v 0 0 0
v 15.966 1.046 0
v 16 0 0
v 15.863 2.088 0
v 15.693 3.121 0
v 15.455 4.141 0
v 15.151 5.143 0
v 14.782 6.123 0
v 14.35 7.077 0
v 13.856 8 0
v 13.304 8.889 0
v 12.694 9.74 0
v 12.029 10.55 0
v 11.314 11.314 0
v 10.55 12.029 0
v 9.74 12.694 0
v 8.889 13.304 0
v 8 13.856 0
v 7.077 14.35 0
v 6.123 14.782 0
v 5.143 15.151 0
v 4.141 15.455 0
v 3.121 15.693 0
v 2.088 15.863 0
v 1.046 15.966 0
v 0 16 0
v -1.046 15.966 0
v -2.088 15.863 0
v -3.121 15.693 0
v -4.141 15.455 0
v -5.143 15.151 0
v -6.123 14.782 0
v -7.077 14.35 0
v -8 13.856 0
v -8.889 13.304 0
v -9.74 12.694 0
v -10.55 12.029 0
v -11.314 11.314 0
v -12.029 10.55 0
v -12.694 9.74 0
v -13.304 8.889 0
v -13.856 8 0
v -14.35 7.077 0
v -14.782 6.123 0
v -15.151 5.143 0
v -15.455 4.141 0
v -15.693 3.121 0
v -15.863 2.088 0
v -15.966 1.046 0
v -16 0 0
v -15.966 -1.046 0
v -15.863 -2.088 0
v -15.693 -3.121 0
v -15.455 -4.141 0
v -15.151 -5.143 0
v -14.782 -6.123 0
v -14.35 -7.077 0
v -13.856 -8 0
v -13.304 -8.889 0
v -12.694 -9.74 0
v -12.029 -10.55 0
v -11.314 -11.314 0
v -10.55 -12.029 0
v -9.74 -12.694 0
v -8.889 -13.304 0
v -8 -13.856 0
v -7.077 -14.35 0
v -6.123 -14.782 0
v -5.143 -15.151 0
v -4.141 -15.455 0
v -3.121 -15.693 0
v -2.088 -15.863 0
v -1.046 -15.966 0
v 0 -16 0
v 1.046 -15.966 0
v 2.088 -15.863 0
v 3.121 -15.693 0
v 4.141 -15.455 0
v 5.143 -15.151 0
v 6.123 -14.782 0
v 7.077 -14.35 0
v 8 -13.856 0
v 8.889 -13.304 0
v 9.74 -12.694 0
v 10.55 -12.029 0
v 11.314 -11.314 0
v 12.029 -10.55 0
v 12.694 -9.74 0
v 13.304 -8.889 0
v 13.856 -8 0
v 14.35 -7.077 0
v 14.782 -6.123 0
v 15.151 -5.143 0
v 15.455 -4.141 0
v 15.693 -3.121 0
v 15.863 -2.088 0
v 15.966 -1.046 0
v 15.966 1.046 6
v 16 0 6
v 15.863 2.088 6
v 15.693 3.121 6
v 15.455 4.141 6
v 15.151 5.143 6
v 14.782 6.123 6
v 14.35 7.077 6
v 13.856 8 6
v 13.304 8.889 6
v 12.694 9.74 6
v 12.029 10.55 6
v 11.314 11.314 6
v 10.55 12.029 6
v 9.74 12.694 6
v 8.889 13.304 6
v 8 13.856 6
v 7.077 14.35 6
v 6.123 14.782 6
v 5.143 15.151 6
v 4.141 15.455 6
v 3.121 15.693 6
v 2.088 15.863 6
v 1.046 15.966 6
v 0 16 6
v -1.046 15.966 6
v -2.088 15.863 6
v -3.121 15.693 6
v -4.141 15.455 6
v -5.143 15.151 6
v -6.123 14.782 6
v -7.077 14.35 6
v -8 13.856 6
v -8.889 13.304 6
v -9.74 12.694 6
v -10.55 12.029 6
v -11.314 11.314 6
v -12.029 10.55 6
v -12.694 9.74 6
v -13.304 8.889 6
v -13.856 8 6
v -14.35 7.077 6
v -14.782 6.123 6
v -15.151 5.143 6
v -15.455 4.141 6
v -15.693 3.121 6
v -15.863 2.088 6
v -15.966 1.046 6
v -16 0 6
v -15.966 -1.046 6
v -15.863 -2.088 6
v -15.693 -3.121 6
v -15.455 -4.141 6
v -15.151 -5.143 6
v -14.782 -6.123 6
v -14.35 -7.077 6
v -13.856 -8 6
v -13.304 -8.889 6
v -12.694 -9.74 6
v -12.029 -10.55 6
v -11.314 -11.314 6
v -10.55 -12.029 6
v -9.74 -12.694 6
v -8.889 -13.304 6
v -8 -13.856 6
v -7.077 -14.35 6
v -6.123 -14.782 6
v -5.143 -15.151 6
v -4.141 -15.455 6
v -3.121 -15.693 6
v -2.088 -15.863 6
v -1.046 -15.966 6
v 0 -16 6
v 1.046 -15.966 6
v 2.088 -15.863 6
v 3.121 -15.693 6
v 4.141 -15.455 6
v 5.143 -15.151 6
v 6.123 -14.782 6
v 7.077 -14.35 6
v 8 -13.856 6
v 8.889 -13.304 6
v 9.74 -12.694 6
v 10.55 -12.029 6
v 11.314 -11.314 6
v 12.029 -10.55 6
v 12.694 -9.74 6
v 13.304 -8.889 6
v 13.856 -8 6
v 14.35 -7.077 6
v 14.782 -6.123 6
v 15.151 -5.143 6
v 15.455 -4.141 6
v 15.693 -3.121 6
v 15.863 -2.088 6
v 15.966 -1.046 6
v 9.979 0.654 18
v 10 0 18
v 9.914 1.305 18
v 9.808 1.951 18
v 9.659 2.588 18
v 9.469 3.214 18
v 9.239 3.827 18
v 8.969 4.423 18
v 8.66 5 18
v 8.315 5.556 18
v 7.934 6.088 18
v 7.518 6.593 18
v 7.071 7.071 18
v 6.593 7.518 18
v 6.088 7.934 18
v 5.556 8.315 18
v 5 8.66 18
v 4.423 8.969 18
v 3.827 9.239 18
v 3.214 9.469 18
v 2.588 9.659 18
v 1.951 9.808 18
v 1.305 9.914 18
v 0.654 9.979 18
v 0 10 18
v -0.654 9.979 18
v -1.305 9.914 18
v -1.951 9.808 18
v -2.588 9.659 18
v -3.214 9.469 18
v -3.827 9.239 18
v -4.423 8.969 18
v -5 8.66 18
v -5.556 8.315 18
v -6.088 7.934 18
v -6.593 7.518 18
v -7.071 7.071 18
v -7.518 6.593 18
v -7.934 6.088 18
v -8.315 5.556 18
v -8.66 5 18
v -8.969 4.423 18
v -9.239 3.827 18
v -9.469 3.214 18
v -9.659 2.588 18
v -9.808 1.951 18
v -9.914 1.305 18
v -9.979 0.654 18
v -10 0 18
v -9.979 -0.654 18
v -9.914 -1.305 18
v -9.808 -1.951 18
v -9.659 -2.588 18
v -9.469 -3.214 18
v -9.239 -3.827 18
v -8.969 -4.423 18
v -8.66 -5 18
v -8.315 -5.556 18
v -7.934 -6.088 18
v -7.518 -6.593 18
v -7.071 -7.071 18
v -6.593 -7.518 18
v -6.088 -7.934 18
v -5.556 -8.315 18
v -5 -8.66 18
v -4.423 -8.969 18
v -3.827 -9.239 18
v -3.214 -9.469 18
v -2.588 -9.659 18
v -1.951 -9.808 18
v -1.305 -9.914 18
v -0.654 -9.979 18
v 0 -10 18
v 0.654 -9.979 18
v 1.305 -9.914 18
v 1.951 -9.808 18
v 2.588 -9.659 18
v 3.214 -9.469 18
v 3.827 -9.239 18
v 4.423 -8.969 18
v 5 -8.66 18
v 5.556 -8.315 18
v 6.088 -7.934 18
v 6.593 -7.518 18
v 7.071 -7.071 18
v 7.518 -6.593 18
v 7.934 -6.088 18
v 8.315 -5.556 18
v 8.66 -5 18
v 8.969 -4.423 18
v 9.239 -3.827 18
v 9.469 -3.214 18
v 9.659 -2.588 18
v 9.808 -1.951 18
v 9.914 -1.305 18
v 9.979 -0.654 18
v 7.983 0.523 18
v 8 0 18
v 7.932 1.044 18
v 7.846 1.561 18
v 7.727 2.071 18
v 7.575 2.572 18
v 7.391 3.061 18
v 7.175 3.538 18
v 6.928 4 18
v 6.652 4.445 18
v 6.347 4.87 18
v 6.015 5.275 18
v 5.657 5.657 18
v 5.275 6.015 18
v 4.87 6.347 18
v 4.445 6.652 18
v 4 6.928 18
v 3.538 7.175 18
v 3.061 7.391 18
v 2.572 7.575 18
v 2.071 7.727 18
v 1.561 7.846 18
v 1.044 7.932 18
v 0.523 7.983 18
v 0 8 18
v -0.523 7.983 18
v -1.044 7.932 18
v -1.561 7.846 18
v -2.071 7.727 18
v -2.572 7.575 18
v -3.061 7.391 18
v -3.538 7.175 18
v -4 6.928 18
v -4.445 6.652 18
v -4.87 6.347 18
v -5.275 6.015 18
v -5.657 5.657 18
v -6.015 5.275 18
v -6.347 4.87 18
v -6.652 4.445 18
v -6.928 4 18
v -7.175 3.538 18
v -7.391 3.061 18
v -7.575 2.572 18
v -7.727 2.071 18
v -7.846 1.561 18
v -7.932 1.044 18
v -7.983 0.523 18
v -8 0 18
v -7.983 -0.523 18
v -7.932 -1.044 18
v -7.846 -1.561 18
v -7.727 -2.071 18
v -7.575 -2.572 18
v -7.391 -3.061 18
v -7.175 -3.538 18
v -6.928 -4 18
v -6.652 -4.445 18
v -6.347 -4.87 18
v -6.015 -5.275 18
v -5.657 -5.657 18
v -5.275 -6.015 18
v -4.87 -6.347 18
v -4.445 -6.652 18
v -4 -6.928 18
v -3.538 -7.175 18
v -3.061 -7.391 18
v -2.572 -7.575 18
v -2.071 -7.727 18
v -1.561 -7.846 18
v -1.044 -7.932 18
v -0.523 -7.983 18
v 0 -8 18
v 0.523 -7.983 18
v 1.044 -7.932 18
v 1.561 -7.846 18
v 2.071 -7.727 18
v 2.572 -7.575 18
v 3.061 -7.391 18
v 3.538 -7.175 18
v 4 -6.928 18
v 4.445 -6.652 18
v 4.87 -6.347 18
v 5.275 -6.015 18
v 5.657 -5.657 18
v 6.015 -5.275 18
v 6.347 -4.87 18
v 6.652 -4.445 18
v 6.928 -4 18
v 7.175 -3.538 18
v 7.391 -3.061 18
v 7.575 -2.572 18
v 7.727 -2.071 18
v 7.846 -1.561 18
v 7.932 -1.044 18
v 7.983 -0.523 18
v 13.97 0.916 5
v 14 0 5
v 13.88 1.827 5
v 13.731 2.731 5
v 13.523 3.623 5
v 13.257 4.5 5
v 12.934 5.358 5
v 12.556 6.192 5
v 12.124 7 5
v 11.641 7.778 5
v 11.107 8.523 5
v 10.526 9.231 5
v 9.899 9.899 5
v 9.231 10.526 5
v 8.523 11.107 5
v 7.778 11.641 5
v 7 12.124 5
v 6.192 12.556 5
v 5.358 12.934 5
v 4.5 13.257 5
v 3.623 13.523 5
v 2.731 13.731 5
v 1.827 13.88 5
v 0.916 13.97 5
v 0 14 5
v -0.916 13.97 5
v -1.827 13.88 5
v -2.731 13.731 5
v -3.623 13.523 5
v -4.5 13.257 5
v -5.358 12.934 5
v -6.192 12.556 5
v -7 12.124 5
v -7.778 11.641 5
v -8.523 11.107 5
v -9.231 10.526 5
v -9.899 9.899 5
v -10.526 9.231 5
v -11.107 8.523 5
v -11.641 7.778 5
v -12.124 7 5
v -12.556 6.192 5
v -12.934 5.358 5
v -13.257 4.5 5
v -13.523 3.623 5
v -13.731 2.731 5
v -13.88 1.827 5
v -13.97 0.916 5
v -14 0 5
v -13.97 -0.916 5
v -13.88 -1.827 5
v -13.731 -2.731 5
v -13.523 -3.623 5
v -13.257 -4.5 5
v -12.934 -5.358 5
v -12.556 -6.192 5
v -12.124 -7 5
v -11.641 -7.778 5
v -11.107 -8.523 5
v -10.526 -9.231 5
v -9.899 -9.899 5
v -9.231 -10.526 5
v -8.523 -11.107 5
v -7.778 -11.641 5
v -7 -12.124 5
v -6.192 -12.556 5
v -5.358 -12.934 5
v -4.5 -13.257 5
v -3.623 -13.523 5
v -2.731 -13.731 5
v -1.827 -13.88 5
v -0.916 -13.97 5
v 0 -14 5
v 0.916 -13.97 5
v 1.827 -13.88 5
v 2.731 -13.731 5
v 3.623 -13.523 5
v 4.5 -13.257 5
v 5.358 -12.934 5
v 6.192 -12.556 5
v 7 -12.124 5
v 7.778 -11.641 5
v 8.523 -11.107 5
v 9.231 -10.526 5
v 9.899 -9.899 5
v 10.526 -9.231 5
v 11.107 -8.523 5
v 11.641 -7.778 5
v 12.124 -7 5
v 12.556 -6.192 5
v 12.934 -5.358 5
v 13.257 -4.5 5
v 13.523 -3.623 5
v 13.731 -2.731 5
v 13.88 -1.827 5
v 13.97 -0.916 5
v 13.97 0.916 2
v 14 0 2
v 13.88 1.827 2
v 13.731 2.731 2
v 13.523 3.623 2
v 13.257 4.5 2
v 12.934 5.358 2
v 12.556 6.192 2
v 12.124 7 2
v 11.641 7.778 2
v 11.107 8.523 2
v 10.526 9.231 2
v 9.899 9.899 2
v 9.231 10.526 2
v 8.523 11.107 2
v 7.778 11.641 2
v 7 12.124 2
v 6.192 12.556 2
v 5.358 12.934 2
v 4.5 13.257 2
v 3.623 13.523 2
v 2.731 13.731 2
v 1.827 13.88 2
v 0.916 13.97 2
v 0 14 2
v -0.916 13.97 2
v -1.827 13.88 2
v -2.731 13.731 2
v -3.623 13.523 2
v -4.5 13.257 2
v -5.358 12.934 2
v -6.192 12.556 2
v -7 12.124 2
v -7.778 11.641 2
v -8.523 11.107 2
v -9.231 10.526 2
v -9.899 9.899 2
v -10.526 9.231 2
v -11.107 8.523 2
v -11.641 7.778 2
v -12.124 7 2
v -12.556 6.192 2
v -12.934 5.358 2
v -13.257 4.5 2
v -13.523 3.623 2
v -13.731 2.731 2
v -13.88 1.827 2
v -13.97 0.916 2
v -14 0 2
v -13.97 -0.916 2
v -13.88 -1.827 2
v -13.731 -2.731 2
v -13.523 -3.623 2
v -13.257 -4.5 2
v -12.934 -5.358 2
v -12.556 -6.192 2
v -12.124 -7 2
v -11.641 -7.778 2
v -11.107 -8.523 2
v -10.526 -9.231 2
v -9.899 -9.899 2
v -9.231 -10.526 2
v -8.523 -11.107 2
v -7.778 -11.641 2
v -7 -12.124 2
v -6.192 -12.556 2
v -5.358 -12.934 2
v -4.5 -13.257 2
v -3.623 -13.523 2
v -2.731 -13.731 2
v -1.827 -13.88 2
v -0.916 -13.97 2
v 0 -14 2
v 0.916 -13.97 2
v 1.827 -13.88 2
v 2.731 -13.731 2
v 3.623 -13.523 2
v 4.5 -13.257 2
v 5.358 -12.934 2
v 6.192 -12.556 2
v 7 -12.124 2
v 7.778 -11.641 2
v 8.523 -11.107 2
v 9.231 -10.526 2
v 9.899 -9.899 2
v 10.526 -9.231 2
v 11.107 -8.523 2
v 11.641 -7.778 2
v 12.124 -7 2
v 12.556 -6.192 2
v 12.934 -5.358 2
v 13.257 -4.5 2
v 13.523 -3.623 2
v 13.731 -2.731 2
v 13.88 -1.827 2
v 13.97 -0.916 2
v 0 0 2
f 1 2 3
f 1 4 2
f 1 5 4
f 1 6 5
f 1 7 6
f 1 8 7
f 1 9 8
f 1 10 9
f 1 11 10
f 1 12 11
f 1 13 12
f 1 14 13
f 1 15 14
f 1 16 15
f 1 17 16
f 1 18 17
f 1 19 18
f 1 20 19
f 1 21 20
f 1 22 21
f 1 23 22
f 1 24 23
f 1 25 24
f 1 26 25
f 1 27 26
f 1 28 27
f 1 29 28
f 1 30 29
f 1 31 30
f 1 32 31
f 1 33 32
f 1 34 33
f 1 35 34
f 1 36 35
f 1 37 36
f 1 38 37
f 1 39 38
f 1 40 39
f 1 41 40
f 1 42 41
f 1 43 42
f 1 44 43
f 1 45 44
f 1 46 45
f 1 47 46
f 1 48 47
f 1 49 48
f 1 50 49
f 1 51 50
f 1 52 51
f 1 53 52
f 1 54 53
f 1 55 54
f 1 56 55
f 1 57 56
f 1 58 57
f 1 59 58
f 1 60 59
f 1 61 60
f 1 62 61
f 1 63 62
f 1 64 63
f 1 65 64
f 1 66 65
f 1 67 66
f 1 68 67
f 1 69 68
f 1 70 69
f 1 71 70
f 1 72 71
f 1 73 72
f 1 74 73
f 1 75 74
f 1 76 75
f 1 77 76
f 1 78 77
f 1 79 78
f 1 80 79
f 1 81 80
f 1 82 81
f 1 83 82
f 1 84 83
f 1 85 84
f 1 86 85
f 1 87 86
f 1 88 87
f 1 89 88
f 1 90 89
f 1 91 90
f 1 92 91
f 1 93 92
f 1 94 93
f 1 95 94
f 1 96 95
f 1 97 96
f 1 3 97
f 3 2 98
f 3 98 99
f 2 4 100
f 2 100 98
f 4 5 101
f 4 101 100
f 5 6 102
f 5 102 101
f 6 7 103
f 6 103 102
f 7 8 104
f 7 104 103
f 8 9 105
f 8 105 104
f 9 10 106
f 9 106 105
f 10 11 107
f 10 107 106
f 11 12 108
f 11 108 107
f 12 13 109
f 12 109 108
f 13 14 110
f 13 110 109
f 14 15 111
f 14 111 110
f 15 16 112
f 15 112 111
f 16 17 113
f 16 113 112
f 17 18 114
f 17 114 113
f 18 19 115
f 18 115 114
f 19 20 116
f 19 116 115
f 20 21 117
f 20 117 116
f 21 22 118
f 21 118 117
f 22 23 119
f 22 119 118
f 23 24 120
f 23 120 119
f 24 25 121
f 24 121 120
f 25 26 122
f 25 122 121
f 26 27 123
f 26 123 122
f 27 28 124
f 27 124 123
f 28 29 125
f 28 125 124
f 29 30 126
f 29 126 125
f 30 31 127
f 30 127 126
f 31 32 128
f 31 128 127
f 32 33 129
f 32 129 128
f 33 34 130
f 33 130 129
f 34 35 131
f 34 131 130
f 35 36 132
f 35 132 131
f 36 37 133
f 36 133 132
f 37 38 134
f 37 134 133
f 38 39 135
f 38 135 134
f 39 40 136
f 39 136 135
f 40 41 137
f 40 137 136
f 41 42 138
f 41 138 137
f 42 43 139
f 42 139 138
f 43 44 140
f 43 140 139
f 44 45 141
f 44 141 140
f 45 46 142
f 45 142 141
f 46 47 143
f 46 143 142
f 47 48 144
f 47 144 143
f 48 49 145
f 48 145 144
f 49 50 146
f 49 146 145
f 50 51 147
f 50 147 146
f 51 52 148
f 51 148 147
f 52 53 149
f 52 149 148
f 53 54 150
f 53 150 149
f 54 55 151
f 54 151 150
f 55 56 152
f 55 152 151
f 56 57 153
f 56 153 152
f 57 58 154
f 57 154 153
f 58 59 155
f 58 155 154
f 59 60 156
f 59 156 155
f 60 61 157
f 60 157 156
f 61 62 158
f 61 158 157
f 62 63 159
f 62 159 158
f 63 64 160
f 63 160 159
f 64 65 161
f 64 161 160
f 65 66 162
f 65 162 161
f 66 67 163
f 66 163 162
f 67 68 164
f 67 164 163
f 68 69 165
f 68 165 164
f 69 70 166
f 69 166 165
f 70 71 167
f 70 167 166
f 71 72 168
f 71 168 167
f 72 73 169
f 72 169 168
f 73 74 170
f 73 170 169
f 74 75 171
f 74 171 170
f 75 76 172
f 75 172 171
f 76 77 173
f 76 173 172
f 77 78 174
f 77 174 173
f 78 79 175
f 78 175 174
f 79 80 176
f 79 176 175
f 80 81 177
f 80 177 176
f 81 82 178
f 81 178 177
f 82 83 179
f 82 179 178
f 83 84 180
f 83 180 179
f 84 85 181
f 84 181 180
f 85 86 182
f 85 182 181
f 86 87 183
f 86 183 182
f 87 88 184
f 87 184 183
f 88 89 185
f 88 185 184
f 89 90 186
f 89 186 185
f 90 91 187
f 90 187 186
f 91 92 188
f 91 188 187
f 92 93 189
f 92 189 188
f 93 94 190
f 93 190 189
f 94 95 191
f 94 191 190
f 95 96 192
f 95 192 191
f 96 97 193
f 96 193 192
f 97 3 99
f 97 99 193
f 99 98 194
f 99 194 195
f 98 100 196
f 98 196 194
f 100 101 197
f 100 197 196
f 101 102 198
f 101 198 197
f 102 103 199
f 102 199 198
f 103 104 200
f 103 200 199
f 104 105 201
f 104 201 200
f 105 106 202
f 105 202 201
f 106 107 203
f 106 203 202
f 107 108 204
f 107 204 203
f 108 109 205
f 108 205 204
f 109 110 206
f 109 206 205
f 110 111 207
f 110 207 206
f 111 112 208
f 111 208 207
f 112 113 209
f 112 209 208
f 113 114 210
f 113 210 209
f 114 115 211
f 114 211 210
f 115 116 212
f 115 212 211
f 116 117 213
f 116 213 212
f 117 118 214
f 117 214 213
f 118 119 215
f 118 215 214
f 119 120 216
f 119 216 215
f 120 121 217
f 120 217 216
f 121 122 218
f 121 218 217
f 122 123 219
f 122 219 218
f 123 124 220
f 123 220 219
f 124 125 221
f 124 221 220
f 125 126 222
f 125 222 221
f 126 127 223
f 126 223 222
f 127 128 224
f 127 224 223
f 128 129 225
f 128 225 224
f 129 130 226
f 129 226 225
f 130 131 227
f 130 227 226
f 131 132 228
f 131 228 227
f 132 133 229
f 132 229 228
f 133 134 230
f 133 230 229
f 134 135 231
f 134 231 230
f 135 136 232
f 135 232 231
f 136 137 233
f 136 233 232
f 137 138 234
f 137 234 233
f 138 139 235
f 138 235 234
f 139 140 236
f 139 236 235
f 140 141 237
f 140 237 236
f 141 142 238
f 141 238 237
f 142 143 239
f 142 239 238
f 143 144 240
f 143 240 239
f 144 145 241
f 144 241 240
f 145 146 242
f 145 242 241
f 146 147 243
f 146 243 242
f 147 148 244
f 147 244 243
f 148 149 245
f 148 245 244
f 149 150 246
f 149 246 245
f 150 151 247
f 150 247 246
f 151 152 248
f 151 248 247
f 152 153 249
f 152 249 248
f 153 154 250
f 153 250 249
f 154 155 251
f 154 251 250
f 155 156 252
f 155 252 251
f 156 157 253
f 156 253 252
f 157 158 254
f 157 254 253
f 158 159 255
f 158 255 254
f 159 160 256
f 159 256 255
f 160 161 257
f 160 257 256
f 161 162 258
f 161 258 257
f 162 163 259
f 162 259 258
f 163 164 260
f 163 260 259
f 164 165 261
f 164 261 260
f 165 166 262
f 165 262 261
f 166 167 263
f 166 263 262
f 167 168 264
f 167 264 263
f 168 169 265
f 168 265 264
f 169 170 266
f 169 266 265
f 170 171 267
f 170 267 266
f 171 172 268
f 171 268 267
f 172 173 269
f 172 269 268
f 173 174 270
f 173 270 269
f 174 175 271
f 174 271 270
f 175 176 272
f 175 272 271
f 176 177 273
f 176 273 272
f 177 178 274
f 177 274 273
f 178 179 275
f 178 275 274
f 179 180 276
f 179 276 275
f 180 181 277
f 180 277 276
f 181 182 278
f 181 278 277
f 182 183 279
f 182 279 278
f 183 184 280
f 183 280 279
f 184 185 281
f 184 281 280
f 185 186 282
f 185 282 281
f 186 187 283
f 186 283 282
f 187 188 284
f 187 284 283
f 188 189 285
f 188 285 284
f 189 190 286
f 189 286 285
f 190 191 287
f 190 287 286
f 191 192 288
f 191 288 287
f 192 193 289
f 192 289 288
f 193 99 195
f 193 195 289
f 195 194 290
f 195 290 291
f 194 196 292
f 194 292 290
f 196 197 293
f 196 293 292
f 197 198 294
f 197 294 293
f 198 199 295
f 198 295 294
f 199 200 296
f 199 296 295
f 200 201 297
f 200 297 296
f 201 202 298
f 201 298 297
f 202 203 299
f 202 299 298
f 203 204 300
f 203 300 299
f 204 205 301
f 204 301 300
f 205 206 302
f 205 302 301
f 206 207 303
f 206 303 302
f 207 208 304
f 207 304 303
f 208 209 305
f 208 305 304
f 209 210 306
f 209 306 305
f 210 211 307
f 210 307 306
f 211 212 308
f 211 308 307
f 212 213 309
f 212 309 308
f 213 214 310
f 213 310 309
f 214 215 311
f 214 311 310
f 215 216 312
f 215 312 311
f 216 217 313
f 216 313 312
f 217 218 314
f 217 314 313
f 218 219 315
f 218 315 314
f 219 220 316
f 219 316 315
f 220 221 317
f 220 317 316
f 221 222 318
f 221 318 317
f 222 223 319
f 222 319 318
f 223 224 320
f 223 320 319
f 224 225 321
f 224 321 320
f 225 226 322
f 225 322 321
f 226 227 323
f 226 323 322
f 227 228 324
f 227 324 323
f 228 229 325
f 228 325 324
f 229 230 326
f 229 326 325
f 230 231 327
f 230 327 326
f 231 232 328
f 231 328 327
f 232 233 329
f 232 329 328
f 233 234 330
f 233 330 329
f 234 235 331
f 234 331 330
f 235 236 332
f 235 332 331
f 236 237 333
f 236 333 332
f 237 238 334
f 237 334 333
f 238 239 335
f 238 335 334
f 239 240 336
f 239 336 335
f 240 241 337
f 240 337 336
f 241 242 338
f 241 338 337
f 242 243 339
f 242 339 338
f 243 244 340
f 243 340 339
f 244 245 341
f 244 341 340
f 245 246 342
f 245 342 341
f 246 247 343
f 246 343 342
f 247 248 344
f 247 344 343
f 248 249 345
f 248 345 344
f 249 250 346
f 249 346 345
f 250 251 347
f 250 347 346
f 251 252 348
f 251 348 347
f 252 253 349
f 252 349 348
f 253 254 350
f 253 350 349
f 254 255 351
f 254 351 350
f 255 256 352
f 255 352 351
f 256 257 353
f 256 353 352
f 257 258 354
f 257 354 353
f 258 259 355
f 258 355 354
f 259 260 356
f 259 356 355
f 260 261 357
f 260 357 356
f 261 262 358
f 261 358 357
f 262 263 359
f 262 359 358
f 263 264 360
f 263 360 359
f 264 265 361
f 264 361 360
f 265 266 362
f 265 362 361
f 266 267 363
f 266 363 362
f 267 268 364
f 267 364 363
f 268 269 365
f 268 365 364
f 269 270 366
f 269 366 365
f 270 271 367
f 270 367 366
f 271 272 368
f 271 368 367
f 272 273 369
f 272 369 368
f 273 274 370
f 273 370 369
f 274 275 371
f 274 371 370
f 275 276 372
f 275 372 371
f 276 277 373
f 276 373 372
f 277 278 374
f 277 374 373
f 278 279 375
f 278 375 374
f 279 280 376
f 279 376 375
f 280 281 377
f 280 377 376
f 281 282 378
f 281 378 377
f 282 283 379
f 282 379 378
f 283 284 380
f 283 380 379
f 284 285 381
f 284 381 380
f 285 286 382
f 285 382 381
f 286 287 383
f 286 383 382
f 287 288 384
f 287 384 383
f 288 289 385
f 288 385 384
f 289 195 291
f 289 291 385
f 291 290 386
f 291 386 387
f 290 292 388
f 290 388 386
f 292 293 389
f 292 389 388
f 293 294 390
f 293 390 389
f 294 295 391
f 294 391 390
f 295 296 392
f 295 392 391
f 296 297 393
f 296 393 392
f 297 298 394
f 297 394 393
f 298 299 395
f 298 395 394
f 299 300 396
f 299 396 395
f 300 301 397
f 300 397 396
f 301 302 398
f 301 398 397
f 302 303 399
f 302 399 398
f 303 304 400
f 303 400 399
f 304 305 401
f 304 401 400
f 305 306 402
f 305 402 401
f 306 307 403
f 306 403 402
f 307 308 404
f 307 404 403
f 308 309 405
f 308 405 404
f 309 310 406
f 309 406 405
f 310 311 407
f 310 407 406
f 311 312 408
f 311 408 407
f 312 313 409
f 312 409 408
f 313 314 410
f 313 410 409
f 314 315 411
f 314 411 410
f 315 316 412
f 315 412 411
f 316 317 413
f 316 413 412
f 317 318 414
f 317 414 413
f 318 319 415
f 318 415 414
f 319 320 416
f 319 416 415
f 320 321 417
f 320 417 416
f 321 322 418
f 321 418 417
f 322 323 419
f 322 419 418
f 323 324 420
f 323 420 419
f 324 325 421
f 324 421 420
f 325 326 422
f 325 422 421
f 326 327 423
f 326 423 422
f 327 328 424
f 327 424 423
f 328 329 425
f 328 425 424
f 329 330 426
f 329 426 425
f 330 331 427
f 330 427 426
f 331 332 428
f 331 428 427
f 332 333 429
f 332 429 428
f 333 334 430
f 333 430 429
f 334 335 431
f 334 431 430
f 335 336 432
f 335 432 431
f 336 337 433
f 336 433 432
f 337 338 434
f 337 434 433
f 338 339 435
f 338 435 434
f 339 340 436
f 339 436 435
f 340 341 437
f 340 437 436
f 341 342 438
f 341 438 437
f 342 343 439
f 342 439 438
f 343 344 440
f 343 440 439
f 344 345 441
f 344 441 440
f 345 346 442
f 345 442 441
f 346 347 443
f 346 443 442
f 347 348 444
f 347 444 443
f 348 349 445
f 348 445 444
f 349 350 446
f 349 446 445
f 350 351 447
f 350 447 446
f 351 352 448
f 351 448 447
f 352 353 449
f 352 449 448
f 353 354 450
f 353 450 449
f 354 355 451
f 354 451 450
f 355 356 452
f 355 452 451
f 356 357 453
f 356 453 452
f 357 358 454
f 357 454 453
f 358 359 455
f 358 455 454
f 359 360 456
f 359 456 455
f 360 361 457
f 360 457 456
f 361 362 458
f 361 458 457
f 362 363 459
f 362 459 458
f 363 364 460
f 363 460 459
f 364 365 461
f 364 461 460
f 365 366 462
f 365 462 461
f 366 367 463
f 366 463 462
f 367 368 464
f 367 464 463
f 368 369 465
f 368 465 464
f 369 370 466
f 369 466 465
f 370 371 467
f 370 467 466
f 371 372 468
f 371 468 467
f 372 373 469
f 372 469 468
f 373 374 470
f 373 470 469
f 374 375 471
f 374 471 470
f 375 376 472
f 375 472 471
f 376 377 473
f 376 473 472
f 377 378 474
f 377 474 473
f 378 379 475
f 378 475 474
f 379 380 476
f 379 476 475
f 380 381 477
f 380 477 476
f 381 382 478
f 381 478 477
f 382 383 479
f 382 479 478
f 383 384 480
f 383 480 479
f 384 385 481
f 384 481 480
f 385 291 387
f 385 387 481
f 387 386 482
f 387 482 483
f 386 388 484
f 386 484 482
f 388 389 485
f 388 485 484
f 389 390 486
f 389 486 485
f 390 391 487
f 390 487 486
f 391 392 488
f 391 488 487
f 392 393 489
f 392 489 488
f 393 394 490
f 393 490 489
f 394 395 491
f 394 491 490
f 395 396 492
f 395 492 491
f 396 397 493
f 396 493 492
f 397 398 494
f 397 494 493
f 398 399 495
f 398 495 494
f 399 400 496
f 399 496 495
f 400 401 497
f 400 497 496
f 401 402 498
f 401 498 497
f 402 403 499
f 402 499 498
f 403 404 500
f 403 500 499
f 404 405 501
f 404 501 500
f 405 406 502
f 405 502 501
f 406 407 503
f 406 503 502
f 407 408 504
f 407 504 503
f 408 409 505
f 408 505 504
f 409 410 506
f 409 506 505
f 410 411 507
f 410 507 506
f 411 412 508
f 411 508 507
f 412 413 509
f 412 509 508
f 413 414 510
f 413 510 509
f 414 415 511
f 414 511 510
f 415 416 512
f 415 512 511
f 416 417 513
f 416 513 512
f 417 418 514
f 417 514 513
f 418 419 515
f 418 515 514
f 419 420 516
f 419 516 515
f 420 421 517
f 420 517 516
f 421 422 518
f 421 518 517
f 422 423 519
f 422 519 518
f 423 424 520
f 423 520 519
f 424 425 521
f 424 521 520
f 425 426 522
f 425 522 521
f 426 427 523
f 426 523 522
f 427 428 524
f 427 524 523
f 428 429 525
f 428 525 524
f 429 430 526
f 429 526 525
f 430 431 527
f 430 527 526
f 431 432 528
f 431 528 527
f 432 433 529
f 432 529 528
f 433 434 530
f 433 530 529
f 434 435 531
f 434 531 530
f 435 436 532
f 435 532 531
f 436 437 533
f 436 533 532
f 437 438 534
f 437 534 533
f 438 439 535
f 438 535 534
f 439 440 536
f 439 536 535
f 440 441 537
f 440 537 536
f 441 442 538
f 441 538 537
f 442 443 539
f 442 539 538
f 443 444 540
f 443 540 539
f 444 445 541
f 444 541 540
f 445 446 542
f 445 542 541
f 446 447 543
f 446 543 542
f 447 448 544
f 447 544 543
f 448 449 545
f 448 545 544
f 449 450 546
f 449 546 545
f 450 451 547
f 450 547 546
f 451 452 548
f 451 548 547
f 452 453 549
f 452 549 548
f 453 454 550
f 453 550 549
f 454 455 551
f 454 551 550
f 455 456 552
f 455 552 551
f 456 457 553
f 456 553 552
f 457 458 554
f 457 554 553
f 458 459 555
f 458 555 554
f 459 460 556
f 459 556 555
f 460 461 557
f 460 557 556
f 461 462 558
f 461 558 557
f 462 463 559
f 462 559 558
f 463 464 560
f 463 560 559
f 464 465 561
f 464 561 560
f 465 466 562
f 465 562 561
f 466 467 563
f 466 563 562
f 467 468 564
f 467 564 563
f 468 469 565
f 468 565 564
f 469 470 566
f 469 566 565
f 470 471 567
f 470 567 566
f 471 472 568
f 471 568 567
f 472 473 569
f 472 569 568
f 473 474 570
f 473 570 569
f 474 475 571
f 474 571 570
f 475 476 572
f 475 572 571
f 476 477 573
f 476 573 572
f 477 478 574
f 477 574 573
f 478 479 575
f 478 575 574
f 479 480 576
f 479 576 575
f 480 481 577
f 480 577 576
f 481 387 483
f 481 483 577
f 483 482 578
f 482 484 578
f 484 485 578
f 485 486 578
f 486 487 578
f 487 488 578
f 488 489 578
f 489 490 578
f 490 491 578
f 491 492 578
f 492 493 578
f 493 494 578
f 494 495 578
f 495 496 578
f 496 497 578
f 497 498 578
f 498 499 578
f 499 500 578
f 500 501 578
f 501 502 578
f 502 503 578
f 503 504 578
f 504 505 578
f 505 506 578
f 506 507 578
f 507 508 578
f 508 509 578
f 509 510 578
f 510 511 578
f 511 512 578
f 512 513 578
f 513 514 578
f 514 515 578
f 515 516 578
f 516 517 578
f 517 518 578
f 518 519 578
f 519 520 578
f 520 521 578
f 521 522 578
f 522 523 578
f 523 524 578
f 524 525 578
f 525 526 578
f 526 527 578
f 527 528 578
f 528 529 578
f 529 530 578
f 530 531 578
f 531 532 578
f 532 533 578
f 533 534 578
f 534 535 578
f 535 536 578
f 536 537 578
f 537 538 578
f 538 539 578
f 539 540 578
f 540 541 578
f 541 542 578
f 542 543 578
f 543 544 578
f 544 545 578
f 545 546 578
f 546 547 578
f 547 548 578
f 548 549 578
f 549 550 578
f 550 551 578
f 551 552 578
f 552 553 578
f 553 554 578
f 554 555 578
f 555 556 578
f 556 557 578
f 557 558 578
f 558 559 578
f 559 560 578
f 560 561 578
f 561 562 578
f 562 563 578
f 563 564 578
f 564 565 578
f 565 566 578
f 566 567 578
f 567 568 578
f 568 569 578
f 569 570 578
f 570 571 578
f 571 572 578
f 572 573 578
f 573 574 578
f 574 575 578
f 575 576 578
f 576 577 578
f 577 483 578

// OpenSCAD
// Original MechIntel educational model. CC0-1.0. Units: mm.
// Not a standardized or load-rated component.
$fn=96;
// Section points: [radius, height], mm. Edit to change the profile.
section=[[0, 0], [16, 0], [16, 6], [10, 18], [8, 18], [14, 5], [14, 2], [0, 2]];
rotate_extrude($fn=96) polygon(points=section);
